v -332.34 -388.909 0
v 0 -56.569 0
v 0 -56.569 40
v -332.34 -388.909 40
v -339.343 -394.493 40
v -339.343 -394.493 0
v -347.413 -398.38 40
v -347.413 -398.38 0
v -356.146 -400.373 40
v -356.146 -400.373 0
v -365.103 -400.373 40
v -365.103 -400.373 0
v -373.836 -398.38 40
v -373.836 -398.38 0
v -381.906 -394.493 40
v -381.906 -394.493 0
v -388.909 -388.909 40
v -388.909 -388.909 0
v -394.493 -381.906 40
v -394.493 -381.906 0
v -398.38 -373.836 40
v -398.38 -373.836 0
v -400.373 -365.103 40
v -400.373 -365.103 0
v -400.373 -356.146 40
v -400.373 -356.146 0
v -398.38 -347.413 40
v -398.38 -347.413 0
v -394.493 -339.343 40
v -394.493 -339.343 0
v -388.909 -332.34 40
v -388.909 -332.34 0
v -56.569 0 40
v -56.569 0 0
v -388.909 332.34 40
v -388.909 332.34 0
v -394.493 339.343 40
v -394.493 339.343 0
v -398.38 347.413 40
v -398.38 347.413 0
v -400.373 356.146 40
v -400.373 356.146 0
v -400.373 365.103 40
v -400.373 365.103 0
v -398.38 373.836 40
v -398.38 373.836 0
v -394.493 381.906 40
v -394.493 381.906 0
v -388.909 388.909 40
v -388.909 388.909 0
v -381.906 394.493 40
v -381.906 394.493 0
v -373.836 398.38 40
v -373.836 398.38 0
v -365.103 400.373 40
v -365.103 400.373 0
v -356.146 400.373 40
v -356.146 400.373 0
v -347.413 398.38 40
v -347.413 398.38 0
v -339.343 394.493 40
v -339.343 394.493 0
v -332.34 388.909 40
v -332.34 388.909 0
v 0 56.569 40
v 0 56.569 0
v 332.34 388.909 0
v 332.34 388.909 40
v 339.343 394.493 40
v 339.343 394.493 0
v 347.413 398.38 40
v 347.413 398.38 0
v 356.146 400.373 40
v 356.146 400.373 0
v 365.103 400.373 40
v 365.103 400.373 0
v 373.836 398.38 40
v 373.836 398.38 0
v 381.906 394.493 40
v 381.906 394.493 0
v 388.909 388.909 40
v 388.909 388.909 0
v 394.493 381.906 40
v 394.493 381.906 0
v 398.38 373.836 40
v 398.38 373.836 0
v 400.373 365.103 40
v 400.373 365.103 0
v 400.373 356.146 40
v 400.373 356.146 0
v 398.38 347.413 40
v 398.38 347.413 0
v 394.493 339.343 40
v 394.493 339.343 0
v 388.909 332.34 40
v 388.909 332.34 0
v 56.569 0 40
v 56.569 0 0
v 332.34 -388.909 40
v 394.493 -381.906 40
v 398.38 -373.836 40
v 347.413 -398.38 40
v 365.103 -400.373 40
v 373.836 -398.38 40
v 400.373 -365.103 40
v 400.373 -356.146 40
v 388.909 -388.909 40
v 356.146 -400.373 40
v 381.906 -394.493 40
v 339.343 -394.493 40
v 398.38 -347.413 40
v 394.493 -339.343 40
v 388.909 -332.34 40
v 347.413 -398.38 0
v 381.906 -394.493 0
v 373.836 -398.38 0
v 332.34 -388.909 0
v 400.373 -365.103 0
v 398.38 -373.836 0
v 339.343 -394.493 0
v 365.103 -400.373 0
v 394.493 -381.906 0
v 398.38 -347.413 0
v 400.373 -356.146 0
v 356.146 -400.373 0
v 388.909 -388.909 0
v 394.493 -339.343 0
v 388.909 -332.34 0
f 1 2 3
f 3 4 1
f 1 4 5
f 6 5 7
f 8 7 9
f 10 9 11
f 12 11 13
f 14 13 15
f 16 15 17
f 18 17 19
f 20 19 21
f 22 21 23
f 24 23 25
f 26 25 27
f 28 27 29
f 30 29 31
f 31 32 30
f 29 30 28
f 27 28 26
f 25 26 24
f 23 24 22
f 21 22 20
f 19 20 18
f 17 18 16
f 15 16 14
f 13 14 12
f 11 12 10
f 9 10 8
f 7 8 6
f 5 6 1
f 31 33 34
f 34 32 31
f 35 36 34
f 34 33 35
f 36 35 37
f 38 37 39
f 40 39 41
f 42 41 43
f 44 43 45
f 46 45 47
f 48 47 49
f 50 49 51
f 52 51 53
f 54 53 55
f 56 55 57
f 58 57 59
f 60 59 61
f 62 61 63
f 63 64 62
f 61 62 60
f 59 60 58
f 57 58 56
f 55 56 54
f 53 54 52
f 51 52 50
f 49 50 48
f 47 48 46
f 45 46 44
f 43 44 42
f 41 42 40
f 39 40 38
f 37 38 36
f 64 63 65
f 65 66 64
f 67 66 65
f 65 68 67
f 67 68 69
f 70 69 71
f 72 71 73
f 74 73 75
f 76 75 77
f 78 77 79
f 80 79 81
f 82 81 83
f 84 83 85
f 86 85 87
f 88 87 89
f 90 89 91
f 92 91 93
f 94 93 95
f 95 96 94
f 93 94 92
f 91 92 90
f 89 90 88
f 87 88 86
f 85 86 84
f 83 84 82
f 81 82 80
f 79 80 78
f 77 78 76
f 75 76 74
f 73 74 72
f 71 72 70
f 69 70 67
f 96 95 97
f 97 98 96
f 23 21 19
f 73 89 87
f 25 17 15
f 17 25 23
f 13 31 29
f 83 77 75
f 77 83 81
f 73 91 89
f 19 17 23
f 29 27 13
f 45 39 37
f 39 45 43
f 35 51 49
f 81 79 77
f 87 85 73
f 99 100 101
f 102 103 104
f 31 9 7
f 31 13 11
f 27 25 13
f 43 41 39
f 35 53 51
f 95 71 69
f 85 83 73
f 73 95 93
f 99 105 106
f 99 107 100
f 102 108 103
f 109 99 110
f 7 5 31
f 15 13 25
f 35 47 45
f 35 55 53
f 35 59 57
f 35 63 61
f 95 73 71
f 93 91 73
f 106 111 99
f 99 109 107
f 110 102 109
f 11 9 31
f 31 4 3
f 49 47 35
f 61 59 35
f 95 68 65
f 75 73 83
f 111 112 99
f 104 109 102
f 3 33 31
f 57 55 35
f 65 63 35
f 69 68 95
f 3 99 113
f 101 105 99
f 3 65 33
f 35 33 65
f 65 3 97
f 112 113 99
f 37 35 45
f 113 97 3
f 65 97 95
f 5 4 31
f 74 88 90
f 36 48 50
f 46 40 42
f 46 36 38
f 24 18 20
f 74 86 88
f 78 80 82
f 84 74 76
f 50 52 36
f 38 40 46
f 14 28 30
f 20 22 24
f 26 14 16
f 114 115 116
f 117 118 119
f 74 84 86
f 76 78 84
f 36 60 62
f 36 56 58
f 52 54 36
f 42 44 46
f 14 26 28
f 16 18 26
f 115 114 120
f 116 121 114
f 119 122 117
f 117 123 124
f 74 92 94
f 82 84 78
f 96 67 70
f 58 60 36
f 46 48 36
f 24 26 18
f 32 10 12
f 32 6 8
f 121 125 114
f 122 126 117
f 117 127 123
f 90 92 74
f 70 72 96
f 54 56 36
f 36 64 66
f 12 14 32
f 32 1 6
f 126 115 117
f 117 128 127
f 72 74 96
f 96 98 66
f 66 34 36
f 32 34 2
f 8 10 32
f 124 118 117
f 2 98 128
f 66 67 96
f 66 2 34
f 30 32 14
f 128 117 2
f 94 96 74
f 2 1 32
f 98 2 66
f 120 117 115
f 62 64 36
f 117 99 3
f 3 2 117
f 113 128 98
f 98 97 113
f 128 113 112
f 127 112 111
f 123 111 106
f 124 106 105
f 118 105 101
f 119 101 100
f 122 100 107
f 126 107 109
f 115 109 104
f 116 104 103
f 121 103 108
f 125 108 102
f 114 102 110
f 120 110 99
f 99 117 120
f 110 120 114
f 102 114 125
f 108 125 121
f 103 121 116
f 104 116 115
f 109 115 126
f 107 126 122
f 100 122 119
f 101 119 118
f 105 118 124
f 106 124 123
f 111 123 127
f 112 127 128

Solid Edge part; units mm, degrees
sketch "Sketch1" plane through (0, 0, 0) normal (0, 0, 1) x (1, 0, 0)
  line L0 (388.9087, 332.3402) -> (-332.3402, -388.9087)
  arc A0 (332.3402, 388.9087) -> (388.9087, 332.3402) centre (360.6245, 360.6245) cw
  line L1 (332.3402, 388.9087) -> (-388.9087, -332.3402)
  arc A1 (-332.3402, -388.9087) -> (-388.9087, -332.3402) centre (-360.6245, -360.6245) cw
  dimension "D1" = 1100
extrude "Protrusion1" add sketch "Sketch1" along normal blind 40
mirror "Mirror1" about plane through (0, 0, 0) normal (1, 0, 0) of "Protrusion1"
properties material "Fe 360 B UNI 7070"
